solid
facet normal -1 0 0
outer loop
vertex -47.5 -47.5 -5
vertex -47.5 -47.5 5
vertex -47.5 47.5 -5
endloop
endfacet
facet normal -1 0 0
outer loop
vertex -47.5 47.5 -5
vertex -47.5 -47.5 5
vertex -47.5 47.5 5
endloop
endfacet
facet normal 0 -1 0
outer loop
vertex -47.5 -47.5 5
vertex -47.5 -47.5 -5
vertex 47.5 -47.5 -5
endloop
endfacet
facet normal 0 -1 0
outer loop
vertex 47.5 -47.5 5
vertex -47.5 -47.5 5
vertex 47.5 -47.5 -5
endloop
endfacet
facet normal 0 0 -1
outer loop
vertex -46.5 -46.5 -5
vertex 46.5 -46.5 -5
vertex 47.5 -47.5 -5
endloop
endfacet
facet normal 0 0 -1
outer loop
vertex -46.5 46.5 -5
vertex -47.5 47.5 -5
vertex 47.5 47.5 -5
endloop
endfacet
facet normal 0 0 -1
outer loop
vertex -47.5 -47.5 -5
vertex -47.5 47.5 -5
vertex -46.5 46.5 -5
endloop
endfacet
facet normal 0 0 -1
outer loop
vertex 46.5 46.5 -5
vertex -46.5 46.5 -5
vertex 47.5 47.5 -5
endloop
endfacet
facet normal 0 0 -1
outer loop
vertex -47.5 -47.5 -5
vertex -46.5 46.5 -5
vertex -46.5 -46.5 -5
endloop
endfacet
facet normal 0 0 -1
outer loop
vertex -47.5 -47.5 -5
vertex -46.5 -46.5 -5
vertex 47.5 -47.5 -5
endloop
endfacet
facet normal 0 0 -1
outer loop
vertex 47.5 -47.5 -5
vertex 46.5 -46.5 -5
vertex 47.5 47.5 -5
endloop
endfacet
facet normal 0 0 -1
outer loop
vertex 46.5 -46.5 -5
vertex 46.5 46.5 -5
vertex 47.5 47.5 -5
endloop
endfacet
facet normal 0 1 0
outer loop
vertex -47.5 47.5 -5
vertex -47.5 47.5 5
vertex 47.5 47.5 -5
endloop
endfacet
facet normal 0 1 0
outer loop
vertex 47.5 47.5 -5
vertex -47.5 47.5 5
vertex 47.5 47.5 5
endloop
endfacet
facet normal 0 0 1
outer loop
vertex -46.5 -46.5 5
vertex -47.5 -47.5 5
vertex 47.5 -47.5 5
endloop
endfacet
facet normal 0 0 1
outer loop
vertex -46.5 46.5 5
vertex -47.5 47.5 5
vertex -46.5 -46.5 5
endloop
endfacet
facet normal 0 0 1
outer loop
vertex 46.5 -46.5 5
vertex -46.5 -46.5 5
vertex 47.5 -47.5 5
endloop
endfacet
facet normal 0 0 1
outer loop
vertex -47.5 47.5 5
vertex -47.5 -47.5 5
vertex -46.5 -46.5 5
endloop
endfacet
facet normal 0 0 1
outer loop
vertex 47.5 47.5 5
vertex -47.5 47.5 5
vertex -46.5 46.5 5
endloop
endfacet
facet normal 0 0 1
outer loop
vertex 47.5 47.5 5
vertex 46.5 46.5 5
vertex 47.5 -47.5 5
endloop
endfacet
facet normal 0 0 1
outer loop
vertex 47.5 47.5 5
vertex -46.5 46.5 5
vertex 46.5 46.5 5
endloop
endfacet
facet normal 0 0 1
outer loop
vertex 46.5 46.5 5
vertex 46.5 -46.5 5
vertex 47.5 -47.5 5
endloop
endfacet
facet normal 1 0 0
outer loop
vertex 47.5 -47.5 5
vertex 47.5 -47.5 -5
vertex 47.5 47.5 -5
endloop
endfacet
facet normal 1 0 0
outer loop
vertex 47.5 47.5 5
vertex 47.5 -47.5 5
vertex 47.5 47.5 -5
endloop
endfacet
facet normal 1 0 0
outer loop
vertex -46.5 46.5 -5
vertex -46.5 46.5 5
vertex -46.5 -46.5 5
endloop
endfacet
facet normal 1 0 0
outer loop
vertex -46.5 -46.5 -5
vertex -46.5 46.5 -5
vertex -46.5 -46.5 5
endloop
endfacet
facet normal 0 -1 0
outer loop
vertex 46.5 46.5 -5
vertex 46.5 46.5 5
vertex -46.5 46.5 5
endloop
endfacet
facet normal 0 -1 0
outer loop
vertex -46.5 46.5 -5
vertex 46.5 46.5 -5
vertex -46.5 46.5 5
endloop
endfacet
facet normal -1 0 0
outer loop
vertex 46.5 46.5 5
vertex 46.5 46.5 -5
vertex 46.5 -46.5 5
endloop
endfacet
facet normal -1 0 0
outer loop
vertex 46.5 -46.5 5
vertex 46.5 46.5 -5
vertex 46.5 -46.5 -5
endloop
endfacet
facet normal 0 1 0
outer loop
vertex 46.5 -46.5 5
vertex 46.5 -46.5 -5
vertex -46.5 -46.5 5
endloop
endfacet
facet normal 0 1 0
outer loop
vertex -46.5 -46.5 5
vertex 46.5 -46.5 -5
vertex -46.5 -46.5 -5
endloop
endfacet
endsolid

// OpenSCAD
dim_width = 95;
dim_length = 95;
dim_height = 10;
dim_wall = 1;


difference(){
	cube([ dim_width, dim_length, dim_height], center=true);
	cube([ dim_width - 2 * dim_wall, dim_length - 2 * dim_wall, dim_height + 100], center=true);
}
